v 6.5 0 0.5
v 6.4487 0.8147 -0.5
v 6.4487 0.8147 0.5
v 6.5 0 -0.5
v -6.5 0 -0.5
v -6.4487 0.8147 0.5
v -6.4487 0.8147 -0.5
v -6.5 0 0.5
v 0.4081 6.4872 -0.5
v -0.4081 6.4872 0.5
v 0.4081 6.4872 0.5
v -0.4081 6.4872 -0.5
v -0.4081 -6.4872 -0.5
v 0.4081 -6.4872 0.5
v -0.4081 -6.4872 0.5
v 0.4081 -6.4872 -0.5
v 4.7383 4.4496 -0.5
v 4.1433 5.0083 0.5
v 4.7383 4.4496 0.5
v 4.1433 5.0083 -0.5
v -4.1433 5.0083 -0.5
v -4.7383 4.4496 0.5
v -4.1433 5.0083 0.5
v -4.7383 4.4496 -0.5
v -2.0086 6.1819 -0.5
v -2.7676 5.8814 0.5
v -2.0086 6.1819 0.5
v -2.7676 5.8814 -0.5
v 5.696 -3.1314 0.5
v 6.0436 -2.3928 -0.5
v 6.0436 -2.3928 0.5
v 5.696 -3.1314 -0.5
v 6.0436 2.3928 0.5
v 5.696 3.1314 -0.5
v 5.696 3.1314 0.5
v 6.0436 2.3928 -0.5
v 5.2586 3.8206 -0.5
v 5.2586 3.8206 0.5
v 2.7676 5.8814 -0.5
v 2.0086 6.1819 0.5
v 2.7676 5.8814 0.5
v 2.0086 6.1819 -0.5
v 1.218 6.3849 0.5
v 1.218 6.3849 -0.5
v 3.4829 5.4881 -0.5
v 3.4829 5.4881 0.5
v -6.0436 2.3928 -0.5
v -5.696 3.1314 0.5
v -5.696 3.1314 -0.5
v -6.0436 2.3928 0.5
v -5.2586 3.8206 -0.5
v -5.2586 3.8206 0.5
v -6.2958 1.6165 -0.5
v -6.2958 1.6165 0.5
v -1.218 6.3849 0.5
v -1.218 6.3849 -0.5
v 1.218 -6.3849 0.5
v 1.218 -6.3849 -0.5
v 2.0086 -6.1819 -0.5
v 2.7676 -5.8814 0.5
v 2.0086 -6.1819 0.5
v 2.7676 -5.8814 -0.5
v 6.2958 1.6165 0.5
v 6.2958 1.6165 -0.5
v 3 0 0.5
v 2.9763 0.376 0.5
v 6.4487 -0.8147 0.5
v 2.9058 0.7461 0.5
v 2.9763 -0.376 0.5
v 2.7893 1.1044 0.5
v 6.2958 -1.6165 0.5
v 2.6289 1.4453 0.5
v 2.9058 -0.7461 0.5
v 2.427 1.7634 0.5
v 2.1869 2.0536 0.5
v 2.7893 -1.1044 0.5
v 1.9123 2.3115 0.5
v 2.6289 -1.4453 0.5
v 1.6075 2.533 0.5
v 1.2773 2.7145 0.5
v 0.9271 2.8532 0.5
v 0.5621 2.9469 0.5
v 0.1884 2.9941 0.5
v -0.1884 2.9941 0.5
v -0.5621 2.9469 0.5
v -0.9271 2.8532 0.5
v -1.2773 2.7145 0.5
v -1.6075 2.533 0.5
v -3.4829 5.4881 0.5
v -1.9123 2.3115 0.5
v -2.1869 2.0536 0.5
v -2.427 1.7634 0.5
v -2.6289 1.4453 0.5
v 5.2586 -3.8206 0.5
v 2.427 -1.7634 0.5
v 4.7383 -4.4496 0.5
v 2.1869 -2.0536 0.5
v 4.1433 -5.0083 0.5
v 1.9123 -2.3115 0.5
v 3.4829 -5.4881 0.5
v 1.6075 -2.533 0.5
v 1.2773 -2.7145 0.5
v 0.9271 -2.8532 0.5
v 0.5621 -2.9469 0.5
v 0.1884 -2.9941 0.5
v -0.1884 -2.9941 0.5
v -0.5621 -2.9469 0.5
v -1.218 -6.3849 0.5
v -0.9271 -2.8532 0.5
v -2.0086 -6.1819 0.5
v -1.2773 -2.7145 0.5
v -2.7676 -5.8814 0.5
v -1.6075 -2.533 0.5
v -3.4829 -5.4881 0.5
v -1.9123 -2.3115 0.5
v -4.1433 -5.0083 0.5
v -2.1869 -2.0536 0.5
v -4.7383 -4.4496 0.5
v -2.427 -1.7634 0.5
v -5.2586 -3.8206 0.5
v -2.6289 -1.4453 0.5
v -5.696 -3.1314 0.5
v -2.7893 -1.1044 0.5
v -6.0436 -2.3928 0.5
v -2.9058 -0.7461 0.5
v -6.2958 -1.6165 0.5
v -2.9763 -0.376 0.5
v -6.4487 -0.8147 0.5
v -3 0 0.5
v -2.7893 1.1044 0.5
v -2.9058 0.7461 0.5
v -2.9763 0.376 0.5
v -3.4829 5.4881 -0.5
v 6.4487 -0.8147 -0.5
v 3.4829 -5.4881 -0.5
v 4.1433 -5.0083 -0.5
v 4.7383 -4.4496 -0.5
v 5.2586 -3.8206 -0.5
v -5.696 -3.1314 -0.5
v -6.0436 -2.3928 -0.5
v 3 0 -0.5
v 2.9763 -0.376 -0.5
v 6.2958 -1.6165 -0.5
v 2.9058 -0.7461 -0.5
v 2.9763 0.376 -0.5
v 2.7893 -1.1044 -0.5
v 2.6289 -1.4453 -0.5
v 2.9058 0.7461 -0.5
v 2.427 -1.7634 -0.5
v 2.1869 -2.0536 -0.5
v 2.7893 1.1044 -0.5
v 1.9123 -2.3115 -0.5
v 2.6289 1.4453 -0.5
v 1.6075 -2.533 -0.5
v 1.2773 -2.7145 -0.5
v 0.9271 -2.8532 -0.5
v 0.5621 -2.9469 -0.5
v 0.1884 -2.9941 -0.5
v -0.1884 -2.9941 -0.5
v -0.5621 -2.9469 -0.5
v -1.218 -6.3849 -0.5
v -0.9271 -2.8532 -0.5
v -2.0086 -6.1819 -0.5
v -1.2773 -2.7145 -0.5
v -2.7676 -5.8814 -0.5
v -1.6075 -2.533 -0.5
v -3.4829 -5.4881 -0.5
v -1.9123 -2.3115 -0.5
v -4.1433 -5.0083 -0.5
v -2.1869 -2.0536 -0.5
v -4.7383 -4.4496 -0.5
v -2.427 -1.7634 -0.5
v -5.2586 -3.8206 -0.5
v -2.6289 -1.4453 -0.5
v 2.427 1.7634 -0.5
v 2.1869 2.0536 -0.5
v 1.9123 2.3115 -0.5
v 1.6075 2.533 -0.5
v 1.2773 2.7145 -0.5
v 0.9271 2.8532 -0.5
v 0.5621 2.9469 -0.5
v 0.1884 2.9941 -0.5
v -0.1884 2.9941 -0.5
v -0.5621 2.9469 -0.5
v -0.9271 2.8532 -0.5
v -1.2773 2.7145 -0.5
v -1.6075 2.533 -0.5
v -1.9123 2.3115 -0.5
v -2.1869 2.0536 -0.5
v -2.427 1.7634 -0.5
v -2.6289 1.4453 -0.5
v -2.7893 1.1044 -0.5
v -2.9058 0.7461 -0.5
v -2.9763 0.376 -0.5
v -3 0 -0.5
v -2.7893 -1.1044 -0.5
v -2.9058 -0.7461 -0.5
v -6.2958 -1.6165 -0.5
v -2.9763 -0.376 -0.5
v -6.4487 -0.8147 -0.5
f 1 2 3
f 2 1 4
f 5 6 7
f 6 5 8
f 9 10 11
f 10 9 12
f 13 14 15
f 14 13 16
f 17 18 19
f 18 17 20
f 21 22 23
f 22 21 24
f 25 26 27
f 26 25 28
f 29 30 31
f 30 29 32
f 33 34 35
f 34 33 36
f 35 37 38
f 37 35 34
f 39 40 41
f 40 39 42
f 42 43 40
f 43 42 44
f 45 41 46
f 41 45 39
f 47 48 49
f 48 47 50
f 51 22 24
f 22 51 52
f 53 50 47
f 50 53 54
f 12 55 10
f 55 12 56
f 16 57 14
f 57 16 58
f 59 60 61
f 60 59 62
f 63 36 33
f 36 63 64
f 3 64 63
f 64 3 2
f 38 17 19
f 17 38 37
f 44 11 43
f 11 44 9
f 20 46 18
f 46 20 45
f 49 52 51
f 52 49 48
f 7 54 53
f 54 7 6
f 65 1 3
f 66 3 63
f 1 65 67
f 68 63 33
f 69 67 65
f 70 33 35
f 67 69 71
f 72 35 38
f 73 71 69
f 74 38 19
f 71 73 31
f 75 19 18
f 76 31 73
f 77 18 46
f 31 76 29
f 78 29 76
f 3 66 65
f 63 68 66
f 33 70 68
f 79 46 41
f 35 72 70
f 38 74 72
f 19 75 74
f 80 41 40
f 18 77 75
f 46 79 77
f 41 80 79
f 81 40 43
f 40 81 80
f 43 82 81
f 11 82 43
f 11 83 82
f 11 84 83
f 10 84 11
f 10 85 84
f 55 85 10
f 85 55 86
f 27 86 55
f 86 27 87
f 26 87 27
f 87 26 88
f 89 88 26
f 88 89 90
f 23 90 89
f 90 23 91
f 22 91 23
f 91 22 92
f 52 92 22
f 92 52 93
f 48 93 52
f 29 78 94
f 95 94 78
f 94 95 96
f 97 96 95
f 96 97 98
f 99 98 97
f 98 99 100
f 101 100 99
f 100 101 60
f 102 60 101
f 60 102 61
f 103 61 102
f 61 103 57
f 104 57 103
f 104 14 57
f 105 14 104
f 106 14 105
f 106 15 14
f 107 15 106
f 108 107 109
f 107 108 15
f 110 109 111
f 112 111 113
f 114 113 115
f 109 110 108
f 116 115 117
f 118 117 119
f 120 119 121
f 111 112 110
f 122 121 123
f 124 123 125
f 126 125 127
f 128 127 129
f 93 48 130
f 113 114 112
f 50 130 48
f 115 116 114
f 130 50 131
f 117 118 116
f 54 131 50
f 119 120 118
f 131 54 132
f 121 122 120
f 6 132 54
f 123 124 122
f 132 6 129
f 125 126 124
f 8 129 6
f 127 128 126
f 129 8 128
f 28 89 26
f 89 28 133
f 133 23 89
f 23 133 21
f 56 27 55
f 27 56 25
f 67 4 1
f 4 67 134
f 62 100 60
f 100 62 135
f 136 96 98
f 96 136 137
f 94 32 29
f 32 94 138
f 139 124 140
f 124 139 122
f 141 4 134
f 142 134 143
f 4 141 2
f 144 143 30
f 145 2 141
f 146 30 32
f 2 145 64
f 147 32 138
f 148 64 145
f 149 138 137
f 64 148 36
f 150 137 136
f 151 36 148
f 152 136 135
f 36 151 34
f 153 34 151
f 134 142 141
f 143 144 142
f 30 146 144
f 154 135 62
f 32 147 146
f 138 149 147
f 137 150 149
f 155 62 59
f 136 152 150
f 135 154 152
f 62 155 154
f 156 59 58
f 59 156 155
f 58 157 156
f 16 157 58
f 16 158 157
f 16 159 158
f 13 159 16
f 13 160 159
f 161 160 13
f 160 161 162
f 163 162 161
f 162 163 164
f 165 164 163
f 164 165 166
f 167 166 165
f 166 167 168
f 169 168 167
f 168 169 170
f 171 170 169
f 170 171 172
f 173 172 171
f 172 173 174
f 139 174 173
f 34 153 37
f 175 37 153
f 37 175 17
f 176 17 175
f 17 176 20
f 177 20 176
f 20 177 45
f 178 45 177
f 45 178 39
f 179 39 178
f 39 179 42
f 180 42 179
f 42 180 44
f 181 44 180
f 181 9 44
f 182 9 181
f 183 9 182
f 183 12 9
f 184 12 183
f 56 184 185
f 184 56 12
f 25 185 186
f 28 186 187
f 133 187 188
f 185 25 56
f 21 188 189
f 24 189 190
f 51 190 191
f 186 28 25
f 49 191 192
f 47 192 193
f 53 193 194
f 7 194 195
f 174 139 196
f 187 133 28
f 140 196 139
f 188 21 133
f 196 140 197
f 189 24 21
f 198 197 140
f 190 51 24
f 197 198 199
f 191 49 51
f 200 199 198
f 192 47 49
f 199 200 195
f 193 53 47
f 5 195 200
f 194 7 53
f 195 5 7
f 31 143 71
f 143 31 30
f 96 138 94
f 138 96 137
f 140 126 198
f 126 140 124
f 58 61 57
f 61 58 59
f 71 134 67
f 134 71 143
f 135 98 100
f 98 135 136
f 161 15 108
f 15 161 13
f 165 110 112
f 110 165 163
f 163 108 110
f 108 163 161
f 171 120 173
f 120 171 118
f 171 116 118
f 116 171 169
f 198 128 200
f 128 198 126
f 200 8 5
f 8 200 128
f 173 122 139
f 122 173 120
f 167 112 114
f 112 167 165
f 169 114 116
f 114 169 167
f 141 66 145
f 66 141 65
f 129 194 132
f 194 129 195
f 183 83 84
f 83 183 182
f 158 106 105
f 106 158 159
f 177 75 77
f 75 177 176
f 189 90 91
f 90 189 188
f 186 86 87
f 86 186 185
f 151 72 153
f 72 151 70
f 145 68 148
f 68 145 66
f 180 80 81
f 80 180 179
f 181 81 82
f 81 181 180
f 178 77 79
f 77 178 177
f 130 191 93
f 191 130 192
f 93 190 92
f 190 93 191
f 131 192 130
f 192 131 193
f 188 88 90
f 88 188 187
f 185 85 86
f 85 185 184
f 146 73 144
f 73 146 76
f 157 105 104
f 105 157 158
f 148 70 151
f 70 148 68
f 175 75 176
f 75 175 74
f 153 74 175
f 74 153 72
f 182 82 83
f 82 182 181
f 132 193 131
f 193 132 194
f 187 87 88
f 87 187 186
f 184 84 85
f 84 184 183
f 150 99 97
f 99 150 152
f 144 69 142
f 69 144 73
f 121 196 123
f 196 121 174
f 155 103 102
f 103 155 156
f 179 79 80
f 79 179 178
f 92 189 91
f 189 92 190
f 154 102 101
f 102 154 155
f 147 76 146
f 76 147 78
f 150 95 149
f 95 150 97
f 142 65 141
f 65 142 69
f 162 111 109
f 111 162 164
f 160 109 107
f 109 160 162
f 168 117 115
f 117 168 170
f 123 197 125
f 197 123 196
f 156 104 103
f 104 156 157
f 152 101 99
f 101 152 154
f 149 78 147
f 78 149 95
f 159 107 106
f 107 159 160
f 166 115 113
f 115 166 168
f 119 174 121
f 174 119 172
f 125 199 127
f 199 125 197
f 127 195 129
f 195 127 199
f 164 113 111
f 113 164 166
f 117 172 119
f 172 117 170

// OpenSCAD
$fn = 50;


difference() {
	union() {
		translate(v = [0, 0, -0.5000000000]) {
			cylinder(h = 1, r = 6.5000000000);
		}
	}
	union() {
		translate(v = [0, 0, -100.0000000000]) {
			cylinder(h = 200, r = 3);
		}
	}
}
